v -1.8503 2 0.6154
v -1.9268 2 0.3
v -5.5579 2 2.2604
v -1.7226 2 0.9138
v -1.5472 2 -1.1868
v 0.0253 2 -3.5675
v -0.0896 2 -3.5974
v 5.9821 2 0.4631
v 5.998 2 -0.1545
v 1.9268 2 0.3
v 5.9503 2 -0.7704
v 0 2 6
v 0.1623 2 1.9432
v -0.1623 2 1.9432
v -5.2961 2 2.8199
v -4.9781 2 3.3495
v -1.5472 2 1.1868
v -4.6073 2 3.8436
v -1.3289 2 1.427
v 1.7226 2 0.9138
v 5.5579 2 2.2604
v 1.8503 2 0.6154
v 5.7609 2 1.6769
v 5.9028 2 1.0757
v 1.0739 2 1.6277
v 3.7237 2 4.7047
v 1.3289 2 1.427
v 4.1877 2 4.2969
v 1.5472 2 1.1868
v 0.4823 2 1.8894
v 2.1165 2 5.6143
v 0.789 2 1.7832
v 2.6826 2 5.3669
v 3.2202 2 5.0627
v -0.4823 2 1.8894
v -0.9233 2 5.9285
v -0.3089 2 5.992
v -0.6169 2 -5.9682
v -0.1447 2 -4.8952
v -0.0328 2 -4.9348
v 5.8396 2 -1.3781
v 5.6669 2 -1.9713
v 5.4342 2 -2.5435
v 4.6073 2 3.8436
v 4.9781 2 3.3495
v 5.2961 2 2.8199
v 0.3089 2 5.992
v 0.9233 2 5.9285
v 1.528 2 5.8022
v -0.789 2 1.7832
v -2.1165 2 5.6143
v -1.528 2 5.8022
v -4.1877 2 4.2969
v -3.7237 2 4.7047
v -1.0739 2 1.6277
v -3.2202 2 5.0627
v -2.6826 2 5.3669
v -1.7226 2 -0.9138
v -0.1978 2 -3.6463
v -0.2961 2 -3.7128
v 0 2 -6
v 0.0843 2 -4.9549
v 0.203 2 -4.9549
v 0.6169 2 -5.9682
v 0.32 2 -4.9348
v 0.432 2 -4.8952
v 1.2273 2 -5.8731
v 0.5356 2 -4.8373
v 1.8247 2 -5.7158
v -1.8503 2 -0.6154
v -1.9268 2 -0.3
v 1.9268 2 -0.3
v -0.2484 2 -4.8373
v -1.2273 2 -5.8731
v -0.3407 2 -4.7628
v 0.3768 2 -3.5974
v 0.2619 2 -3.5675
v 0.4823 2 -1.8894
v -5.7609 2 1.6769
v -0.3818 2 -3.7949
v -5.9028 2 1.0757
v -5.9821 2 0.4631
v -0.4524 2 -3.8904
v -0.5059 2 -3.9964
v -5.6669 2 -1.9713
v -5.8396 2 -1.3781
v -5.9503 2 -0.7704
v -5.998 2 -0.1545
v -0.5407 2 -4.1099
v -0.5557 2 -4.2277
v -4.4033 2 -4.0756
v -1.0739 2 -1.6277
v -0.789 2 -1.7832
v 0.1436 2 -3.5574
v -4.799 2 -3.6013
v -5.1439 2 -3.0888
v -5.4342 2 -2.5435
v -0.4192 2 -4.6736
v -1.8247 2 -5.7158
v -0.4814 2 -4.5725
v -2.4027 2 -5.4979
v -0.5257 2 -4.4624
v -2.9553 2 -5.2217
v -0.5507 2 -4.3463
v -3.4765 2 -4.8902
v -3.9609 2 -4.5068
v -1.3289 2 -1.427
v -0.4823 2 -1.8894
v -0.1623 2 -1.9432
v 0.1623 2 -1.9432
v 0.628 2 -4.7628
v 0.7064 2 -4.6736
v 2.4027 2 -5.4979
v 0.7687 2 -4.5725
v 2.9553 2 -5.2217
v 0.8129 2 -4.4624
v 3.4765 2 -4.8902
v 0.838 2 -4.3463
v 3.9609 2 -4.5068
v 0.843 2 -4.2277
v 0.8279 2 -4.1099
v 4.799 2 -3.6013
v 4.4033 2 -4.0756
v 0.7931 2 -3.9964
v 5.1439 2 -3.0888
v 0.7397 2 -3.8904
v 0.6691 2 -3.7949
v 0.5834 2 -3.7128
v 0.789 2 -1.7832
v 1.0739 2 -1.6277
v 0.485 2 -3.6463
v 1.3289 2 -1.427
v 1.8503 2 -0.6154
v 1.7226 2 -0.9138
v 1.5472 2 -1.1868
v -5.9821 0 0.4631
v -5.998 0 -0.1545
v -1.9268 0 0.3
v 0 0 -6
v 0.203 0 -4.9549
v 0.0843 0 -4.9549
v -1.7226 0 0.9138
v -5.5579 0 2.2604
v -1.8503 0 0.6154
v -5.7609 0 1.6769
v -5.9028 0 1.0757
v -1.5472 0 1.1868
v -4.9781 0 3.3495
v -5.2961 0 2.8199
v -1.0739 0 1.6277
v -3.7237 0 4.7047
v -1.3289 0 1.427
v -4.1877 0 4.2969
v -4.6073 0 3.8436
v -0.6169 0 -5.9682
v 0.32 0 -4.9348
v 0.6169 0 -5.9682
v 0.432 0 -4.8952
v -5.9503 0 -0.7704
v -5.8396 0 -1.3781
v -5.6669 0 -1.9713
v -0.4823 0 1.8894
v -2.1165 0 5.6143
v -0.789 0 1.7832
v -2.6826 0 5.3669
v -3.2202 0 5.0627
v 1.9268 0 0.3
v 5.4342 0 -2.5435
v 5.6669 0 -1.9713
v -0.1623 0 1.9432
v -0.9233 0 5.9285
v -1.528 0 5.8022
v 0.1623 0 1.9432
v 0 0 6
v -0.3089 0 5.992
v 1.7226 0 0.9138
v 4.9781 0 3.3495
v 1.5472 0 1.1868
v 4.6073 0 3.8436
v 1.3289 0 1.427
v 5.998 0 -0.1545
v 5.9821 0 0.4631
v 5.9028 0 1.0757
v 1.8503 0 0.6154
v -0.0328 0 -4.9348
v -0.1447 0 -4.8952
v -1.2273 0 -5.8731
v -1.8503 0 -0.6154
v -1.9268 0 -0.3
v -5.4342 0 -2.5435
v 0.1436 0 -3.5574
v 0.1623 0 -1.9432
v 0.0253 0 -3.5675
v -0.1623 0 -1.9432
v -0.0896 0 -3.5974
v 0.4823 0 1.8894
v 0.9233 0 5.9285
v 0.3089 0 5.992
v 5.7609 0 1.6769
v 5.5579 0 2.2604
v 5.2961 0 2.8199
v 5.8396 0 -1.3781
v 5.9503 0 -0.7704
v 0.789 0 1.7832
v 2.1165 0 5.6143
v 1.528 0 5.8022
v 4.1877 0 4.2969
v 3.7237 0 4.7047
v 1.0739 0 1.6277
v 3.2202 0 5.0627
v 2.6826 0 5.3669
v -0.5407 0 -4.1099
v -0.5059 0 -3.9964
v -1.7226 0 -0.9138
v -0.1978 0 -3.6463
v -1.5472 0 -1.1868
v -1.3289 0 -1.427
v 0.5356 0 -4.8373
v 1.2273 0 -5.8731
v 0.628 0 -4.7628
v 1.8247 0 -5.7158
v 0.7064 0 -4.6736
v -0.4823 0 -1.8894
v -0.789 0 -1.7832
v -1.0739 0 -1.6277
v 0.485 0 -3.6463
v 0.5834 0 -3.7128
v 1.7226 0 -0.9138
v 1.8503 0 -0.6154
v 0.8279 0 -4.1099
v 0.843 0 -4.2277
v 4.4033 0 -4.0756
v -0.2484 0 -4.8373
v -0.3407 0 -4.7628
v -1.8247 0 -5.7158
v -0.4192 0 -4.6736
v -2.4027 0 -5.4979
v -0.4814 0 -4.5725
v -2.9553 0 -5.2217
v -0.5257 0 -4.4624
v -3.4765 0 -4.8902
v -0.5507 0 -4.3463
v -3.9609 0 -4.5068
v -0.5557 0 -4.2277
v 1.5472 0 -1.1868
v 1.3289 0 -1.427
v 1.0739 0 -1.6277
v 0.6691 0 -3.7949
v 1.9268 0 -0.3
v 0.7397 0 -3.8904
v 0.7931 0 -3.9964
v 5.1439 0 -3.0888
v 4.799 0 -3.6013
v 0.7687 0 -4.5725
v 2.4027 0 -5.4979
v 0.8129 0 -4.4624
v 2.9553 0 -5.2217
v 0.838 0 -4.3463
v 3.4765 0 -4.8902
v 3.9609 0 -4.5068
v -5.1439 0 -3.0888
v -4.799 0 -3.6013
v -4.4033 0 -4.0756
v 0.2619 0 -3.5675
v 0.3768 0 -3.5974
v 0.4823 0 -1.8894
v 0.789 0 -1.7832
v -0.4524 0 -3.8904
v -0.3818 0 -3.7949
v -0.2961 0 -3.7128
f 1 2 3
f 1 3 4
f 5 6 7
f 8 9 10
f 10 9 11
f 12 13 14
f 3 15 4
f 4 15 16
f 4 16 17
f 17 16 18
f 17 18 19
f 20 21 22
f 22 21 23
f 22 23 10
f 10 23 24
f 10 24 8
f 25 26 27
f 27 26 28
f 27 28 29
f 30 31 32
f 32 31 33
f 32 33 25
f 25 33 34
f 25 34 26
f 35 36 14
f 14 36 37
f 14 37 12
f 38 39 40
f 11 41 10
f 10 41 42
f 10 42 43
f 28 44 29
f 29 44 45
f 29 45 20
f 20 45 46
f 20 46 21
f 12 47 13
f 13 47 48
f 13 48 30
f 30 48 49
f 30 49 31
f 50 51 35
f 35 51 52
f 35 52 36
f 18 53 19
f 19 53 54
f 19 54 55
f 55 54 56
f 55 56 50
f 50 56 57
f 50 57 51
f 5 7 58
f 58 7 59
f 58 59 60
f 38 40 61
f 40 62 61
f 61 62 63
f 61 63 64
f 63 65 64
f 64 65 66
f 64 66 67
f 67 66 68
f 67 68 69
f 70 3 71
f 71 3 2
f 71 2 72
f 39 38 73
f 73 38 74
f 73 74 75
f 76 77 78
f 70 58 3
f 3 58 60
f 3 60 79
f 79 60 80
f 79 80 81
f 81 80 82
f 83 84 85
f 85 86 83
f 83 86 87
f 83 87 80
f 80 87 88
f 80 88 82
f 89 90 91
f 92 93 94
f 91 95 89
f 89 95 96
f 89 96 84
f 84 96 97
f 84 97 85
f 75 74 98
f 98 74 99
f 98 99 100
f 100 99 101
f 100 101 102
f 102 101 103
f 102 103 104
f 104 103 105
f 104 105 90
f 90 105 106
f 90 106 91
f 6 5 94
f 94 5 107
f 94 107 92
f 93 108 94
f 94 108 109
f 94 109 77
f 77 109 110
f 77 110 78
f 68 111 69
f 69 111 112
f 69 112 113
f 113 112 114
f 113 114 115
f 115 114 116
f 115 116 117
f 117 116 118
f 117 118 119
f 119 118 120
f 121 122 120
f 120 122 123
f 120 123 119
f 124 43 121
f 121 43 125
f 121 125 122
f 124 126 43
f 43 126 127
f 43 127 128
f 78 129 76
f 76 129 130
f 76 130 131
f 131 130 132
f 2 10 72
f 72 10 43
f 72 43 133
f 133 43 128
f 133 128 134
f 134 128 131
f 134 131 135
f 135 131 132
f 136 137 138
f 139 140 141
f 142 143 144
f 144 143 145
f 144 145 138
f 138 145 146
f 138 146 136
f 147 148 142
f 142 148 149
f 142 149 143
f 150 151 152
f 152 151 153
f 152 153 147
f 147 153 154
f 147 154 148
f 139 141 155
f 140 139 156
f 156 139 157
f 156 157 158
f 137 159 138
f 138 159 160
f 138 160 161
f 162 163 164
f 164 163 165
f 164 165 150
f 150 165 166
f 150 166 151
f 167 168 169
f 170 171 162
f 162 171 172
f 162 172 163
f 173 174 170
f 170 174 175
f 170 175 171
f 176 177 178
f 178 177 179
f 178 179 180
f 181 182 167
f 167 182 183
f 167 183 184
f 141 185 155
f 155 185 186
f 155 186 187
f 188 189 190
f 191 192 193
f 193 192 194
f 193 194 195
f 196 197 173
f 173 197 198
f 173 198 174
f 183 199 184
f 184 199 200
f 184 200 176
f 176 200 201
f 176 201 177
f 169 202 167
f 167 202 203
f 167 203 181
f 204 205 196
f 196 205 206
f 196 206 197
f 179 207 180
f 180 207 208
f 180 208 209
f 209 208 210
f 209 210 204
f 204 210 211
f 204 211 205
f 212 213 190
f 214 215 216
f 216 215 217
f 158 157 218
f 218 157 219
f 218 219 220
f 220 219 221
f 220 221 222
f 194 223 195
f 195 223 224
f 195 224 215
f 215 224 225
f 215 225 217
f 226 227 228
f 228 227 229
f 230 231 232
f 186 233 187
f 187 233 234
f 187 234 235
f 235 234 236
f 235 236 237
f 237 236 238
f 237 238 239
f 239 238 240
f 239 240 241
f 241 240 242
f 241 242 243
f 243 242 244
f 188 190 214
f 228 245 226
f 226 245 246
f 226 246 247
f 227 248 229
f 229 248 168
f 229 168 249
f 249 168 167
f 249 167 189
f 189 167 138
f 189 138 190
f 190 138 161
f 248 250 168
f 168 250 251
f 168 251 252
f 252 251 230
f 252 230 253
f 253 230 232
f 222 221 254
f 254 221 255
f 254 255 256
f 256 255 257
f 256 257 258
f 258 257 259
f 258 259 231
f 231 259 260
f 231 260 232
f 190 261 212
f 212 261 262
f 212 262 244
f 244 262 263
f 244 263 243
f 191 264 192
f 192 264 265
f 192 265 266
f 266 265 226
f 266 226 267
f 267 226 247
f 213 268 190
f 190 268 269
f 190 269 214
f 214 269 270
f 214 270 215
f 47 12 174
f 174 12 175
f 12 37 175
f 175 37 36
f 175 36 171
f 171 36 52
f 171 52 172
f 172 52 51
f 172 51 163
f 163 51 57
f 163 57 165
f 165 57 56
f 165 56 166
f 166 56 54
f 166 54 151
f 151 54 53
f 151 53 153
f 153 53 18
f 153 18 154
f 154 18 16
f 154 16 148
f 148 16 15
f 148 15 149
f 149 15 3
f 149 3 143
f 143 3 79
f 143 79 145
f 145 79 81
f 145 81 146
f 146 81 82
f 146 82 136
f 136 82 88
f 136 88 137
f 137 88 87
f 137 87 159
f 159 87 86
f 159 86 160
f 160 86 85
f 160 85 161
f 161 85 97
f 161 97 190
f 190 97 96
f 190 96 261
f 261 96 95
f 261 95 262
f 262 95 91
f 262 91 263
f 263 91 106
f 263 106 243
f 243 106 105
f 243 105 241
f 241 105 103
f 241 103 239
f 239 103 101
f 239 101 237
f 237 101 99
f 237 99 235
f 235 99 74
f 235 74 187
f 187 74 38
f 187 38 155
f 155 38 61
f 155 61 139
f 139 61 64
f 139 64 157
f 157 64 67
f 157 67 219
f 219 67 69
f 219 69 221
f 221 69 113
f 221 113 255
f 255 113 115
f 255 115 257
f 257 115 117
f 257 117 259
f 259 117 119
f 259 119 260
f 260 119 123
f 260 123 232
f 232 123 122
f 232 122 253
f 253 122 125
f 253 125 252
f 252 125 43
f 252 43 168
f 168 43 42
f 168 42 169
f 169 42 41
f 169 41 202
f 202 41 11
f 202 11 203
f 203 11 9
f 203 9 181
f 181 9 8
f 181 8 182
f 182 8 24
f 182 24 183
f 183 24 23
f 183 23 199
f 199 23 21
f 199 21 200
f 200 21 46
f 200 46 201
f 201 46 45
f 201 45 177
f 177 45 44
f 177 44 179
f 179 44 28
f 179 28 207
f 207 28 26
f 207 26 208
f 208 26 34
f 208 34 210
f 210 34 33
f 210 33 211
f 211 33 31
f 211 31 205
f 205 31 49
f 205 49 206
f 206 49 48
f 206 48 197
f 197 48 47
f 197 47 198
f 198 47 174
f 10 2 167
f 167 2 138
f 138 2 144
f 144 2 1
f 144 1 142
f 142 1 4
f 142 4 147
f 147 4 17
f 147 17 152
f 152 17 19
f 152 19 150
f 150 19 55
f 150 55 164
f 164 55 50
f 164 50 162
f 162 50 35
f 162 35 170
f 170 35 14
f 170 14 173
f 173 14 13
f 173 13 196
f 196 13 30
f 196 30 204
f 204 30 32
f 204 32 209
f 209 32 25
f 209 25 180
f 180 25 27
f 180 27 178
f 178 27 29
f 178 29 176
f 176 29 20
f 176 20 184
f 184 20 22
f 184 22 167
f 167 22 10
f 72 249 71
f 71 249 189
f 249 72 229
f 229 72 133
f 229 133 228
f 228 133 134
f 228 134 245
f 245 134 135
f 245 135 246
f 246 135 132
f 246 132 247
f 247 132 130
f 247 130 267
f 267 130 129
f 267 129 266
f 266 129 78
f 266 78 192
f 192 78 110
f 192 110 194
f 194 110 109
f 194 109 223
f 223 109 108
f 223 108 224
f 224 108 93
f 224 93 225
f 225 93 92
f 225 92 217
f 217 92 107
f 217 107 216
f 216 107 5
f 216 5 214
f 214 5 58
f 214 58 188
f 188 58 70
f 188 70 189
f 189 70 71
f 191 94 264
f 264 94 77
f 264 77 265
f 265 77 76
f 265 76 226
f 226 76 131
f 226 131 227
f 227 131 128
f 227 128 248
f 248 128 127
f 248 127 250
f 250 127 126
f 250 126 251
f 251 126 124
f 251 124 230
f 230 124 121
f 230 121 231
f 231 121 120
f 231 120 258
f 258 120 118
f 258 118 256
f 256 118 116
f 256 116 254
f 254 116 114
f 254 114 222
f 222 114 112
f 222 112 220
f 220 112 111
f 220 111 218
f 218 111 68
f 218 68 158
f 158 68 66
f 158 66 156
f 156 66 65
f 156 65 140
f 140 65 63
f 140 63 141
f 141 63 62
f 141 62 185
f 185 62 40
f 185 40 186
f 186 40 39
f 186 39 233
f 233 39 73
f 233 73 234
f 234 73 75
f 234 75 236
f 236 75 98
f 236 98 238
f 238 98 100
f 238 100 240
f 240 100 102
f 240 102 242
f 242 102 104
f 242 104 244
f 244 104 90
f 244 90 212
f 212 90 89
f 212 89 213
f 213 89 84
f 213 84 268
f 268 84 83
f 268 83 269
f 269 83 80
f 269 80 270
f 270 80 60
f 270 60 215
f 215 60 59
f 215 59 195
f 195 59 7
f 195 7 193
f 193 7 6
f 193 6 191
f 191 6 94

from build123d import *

# Parameters (mm, degrees)
SKETCH1_R           = 6
BOSS_EXTRUDE1_DEPTH = 2
CUT_EXTRUDE1_DEPTH  = 4
SKETCH3_R           = 0.7
CUT_EXTRUDE2_DEPTH  = 4


with BuildPart() as part:
    # Sketch1 → Boss-Extrude1 (new body)
    with BuildSketch(Plane(origin=(0, 0, 0), x_dir=(1, 0, 0), z_dir=(0, 1, 0))):
        with Locations(Location((0, 0, 0), (0, 0, 270))):
            Circle(SKETCH1_R)
    extrude(amount=BOSS_EXTRUDE1_DEPTH)

    # Sketch2 → Cut-Extrude1 (cut)
    with BuildSketch(Plane(origin=(0, 2, 0), x_dir=(1, 0, 0), z_dir=(0, 1, 0))):
        with BuildLine():
            Line((-1.926784887, 0.3), (0, 0.3))
            Line((0, 0.3), (1.926784887, 0.3))
            ThreePointArc((1.926784887, 0.3), (0, 1.95), (-1.926784887, 0.3))
        make_face()
        with BuildLine():
            Line((1.926784887, -0.3), (0, -0.3))
            Line((0, -0.3), (-1.926784887, -0.3))
            ThreePointArc((-1.926784887, -0.3), (0, -1.95), (1.926784887, -0.3))
        make_face()
    extrude(amount=-CUT_EXTRUDE1_DEPTH, mode=Mode.SUBTRACT)

    # Sketch3 → Cut-Extrude2 (cut)
    with BuildSketch(Plane(origin=(0, 2, 0), x_dir=(1, 0, 0), z_dir=(0, 1, 0))):
        with Locations(Location((0.143622542, 4.257382495, 0), (0, 0, 270))):
            Circle(SKETCH3_R)
    extrude(amount=-CUT_EXTRUDE2_DEPTH, mode=Mode.SUBTRACT)


solid = part.part
